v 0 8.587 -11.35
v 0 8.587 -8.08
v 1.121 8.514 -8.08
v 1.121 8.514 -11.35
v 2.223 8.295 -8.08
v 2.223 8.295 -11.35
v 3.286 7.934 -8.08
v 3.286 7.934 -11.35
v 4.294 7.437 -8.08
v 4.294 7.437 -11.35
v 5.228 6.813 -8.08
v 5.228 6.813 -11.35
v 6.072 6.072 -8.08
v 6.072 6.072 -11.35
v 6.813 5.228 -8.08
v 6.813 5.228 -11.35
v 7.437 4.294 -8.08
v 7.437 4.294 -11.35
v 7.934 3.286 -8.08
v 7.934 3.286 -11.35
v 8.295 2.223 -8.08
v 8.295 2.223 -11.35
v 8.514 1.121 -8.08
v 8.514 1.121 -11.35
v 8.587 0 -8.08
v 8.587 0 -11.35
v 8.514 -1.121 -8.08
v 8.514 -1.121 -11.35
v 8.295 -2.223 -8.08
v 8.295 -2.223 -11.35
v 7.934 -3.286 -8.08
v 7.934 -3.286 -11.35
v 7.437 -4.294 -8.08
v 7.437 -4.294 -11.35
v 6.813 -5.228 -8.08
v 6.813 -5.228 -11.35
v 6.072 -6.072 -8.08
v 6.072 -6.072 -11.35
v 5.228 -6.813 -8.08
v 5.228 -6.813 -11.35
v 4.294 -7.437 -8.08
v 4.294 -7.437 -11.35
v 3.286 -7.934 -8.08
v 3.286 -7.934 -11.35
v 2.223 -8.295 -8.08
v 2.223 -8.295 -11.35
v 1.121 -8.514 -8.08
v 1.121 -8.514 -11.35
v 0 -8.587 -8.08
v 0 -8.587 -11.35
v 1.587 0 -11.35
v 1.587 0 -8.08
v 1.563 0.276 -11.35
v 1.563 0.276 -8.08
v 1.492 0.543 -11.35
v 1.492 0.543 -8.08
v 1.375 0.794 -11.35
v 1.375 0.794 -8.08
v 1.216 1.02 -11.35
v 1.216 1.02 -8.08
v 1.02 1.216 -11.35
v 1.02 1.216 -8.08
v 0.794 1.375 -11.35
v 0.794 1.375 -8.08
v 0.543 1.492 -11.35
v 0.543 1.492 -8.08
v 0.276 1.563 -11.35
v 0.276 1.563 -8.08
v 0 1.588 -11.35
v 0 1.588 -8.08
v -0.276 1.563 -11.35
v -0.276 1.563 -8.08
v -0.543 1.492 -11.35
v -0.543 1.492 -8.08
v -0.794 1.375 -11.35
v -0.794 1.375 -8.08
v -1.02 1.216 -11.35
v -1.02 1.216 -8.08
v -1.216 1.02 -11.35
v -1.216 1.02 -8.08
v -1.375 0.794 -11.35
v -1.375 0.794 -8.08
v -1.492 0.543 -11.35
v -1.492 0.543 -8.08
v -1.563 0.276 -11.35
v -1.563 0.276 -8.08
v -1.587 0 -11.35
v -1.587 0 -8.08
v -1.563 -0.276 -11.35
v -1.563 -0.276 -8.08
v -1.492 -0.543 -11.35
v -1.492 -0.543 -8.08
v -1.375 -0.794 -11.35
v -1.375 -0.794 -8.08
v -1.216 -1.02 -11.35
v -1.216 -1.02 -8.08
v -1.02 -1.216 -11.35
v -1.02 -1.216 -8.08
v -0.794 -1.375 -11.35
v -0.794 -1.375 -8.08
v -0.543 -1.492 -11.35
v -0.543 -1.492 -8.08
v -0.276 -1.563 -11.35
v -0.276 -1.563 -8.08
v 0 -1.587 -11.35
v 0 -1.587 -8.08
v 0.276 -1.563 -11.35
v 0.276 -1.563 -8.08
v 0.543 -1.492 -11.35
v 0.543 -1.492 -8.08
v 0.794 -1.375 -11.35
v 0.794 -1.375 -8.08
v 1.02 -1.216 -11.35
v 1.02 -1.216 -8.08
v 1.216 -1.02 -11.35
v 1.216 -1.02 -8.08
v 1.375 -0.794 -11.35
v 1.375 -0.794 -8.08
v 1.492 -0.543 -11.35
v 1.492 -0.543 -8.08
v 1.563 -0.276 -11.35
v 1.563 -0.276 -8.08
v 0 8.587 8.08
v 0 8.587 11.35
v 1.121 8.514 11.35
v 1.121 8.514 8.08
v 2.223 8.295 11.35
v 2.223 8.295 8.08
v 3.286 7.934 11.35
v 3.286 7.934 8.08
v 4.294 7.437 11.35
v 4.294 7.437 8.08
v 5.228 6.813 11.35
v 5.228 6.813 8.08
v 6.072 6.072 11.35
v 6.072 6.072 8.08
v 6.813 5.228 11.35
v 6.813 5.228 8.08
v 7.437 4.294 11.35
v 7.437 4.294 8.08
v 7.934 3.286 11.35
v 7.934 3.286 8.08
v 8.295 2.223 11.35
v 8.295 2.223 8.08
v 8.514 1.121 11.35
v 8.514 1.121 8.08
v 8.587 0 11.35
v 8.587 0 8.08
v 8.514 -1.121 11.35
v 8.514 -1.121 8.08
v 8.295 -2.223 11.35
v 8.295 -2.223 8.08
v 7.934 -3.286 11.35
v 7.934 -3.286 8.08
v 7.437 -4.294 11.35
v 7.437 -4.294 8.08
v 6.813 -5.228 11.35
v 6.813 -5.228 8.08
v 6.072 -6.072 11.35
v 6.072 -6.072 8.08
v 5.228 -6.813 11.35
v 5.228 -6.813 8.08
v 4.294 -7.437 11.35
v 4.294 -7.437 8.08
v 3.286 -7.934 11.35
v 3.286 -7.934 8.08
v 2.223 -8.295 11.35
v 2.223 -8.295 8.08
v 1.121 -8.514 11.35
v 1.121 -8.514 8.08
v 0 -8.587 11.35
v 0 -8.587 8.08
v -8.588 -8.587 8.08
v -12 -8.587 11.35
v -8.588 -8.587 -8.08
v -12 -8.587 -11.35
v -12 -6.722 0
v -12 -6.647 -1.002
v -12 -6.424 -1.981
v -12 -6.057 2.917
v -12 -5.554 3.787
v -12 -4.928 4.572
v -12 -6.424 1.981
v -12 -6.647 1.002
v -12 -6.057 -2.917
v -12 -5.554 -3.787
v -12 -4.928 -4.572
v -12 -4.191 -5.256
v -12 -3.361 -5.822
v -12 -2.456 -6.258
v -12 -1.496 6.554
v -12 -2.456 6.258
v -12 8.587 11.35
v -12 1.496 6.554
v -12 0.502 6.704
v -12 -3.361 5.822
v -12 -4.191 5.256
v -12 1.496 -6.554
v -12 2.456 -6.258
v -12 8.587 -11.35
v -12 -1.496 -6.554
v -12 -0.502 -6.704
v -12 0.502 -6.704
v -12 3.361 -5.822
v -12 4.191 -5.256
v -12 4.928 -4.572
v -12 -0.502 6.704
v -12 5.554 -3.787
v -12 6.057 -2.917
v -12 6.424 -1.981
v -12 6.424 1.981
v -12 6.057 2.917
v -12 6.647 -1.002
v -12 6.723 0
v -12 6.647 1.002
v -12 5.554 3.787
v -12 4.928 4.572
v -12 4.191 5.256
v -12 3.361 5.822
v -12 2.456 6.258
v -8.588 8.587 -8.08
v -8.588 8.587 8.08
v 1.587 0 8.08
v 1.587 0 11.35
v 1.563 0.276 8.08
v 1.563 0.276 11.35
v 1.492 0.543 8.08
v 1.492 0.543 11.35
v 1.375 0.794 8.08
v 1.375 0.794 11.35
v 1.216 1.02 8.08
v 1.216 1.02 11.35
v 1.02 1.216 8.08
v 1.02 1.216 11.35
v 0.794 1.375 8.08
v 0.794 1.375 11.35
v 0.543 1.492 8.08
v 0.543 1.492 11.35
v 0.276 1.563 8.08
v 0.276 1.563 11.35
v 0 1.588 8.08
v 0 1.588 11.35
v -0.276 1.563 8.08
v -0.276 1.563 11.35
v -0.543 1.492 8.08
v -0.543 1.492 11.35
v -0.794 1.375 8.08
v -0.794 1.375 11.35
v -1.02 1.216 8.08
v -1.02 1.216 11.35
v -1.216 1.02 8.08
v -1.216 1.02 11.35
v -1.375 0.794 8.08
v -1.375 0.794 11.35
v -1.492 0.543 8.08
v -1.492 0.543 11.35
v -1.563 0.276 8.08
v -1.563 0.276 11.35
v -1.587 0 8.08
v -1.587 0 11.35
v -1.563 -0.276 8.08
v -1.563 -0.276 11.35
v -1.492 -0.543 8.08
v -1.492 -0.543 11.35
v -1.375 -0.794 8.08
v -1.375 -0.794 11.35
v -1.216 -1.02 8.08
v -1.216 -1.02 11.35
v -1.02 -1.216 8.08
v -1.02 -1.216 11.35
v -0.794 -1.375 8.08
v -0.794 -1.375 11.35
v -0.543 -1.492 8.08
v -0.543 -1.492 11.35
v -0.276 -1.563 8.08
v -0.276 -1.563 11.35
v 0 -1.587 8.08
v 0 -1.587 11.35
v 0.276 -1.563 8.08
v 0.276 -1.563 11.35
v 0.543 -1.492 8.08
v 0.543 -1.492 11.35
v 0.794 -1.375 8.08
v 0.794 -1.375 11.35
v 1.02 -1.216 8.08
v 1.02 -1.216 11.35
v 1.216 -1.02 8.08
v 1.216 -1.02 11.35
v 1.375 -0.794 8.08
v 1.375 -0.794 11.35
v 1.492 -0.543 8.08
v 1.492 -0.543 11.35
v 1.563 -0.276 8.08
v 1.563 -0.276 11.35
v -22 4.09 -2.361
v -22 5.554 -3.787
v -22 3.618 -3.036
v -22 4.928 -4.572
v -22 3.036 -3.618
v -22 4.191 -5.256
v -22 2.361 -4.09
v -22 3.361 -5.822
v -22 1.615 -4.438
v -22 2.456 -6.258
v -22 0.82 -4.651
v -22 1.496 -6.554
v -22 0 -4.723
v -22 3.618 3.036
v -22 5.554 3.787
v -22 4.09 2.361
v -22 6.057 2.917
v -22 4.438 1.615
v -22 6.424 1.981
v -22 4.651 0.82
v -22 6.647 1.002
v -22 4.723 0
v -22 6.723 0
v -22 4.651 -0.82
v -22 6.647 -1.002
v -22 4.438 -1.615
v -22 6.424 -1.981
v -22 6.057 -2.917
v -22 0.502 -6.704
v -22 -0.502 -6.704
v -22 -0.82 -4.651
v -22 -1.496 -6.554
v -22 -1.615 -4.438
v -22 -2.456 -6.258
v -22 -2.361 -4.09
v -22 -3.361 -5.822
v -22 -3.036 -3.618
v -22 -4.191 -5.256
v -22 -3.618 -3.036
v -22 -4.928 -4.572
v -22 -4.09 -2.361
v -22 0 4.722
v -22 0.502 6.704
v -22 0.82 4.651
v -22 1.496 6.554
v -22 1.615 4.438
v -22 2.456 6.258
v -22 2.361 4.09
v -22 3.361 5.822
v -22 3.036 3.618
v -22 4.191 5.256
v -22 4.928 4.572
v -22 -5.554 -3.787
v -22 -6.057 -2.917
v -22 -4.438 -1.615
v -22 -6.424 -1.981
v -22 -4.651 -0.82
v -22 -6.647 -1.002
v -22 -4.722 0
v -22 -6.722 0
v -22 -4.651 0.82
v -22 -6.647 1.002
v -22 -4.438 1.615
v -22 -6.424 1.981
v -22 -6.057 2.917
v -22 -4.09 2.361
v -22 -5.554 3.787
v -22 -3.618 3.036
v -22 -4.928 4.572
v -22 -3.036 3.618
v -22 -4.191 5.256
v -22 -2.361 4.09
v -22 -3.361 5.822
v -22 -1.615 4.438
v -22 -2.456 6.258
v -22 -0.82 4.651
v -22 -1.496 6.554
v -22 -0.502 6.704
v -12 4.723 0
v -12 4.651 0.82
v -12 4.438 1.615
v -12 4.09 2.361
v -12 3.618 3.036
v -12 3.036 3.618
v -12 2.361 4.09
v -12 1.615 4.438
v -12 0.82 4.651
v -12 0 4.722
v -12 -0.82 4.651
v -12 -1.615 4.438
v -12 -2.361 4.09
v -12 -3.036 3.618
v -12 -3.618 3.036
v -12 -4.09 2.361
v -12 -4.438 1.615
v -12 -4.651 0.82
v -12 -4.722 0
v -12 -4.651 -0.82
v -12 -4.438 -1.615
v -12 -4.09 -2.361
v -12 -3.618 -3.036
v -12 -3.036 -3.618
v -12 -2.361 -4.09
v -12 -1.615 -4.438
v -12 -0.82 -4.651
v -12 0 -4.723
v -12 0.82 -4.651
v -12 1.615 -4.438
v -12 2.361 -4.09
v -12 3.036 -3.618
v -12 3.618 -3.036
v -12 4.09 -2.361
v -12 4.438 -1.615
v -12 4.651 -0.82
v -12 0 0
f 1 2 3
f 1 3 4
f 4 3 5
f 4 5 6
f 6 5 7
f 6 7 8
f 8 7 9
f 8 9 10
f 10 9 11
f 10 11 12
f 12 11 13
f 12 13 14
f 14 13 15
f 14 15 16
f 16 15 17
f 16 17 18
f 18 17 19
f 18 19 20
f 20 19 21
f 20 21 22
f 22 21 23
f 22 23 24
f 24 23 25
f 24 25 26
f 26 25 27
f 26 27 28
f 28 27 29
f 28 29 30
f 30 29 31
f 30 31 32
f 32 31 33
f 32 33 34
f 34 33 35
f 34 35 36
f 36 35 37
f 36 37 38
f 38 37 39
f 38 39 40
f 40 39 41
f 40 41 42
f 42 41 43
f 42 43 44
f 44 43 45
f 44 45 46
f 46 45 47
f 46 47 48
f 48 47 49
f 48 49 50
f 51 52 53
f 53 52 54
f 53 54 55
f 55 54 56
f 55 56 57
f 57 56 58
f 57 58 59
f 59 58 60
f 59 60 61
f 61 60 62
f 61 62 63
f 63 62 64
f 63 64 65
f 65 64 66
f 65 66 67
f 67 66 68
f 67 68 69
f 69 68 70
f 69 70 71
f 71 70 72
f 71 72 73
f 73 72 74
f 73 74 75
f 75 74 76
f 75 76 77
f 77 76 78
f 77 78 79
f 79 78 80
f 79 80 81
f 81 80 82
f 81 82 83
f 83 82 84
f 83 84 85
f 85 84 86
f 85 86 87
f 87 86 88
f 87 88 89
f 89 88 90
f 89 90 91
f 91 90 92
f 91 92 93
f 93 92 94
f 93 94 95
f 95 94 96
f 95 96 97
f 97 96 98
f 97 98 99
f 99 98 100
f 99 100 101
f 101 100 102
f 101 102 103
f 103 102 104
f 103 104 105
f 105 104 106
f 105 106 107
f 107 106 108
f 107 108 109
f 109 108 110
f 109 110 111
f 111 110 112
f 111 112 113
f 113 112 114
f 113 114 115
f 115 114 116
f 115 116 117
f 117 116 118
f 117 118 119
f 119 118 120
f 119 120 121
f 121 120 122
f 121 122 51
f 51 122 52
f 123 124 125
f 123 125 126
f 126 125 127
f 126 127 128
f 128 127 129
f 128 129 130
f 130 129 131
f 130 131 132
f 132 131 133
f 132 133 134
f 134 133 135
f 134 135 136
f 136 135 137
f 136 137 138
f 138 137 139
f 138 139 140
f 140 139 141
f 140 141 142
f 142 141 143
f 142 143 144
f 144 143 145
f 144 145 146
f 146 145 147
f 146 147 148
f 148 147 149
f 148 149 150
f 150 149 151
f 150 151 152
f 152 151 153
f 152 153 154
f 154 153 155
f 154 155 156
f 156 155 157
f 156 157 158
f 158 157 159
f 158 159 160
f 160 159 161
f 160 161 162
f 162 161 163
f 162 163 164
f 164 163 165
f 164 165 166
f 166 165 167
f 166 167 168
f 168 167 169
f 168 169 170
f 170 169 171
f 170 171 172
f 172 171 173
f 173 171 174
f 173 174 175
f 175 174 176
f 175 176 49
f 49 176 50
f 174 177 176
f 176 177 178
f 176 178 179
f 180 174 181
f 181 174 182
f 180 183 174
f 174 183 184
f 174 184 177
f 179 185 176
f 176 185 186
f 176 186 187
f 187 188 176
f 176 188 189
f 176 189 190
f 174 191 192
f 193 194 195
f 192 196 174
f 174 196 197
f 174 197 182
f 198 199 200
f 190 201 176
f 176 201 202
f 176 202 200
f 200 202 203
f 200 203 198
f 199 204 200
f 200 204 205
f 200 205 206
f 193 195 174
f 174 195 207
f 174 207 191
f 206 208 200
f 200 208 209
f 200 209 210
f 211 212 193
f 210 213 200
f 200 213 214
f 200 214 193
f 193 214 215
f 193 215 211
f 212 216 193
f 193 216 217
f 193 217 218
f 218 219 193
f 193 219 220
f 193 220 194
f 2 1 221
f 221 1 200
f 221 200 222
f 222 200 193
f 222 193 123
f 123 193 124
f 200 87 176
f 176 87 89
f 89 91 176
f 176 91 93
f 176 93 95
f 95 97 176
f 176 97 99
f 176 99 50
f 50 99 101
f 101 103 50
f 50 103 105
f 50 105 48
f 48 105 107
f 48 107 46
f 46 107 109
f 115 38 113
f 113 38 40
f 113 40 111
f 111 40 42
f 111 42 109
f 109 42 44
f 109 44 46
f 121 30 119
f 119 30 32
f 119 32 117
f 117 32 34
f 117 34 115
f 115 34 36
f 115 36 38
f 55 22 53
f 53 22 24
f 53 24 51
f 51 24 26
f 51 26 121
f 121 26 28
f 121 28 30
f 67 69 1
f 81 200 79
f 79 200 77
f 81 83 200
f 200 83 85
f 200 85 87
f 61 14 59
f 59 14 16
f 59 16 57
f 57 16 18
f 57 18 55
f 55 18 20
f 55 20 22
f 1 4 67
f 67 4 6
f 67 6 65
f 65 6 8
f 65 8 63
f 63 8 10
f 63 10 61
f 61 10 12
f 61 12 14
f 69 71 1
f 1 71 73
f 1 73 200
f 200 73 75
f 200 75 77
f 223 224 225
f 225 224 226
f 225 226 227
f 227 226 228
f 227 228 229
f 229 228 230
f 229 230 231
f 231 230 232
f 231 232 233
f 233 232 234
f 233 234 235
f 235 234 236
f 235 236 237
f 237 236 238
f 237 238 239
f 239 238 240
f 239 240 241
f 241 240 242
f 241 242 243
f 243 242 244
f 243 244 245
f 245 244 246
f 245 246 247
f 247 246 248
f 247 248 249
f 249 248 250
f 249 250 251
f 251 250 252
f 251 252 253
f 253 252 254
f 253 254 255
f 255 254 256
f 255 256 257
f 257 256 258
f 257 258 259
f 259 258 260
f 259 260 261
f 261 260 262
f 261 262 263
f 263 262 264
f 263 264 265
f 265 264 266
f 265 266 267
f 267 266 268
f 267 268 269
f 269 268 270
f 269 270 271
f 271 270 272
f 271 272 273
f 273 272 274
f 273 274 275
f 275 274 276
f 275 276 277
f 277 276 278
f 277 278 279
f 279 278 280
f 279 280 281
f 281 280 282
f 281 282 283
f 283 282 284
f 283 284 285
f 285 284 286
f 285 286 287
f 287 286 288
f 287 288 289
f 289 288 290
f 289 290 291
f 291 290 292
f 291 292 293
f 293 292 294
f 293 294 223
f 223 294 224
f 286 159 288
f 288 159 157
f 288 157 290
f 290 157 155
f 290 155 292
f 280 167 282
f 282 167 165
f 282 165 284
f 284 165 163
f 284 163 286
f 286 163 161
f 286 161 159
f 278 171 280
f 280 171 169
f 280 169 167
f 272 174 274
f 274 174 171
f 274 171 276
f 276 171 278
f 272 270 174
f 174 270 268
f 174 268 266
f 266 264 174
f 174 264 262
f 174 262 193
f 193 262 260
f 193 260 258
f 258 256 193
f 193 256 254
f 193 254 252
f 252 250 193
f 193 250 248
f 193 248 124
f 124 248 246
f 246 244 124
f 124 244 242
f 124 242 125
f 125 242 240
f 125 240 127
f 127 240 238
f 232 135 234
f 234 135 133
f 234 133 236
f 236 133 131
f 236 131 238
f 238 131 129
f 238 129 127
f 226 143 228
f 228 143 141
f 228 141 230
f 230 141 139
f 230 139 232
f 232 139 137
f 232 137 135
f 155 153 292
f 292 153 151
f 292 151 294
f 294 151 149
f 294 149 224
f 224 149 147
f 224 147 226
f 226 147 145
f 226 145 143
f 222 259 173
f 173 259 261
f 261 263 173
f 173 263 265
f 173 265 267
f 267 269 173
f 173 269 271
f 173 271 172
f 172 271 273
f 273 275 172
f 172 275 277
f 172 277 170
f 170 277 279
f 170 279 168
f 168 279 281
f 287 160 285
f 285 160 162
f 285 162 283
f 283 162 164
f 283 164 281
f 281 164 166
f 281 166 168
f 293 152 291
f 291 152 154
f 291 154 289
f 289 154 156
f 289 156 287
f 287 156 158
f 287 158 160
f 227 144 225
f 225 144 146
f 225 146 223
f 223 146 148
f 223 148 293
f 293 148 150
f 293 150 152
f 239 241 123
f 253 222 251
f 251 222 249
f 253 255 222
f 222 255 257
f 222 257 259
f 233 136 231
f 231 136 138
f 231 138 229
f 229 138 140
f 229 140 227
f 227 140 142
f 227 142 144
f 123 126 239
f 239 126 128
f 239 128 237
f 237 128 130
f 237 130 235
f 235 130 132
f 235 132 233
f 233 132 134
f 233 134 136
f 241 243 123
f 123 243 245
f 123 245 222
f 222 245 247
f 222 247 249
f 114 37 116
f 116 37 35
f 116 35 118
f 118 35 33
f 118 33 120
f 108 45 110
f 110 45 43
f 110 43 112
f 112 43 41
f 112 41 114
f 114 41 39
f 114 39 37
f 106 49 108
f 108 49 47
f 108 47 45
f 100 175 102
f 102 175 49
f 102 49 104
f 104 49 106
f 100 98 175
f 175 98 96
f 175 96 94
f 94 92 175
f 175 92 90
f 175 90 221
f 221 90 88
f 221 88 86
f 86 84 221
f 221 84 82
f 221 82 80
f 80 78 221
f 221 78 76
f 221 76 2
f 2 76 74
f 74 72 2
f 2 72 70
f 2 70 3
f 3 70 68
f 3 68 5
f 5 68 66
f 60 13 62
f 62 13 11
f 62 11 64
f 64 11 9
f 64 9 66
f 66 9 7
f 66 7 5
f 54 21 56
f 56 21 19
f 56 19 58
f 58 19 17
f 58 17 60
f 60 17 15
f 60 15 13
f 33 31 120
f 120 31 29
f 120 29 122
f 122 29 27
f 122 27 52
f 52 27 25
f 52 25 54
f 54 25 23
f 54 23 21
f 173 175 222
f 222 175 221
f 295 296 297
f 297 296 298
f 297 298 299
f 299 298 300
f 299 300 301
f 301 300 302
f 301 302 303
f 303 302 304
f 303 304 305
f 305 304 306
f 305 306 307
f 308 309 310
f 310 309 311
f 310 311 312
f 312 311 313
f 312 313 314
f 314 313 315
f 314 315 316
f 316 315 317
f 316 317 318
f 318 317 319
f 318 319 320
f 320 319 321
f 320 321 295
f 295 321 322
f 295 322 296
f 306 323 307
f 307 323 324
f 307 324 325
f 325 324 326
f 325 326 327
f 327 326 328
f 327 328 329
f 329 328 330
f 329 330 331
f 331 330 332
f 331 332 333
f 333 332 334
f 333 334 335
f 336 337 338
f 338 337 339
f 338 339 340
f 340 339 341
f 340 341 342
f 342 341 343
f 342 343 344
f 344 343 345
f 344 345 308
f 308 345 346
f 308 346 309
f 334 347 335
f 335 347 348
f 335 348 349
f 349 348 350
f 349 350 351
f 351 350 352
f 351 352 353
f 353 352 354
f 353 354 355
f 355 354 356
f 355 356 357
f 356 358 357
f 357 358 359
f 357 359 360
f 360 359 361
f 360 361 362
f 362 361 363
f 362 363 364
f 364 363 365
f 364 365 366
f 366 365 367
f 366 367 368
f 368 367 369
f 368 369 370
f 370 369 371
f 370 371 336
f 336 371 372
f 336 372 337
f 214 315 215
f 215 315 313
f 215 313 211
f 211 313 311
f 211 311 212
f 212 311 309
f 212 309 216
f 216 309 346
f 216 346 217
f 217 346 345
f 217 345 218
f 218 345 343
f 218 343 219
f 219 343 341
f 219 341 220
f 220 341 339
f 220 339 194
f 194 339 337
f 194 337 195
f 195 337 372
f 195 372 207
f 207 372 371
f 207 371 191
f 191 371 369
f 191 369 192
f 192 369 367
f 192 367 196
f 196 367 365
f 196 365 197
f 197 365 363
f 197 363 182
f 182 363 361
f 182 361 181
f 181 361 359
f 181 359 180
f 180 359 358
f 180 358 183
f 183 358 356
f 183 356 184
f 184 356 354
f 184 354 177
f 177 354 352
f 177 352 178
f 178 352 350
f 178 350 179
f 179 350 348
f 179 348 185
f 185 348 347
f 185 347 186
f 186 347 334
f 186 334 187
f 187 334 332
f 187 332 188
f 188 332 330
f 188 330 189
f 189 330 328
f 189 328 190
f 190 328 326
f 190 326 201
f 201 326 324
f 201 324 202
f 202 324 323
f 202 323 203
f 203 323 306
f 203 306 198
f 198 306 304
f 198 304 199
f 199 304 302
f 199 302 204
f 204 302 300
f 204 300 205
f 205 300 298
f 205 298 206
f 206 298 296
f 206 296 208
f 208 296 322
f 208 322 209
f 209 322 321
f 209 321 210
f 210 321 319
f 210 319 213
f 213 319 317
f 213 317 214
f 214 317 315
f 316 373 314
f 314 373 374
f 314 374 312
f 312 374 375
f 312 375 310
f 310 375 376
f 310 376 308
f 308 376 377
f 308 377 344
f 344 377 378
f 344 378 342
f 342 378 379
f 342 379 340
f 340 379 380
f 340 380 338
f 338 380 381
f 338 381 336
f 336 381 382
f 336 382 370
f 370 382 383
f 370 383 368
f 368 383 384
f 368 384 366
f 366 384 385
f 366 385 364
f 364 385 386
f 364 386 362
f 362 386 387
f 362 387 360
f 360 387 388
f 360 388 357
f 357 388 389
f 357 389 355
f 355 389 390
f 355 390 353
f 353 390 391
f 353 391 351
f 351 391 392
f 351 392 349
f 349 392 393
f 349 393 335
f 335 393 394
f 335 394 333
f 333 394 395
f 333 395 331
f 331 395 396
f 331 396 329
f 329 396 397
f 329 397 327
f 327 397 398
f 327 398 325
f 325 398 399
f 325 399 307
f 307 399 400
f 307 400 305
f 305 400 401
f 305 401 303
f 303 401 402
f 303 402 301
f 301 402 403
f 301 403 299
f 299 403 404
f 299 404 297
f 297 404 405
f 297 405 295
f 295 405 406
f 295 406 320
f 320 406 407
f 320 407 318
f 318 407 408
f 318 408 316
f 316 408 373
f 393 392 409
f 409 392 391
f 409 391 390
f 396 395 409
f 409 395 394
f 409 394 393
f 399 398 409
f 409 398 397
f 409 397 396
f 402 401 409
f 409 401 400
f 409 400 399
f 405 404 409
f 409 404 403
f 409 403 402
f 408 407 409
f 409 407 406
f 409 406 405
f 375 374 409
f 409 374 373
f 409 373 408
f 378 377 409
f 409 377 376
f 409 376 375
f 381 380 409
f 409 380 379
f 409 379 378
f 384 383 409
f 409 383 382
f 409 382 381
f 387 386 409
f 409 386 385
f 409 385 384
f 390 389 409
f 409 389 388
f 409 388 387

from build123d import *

# Parameters (mm, degrees)
BOSS_EXTRUDE2_DEPTH      = 11.35
BOSS_EXTRUDE2_DEPTH_BACK = 11.35
SKETCH1_R                = 1.5875
CUT_EXTRUDE1_DEPTH       = 8.08
CUT_EXTRUDE1_DEPTH_BACK  = 8.08
SKETCH3_W                = 17.175
SKETCH3_H                = 17.175
SKETCH4_R                = 6.7225
SKETCH4_R_2              = 4.7225
BOSS_EXTRUDE4_DEPTH      = 10


with BuildPart() as part:
    # Sketch1 → Boss-Extrude2 (new, two sides: drawn at the far end of the back side and taken through both)
    with BuildSketch(Plane.XY.offset(-BOSS_EXTRUDE2_DEPTH_BACK)):
        with BuildLine():
            Line((0, 8.5875), (-12, 8.5875))
            Line((-12, 8.5875), (-12, -8.5875))
            Line((-12, -8.5875), (0, -8.5875))
            ThreePointArc((0, -8.5875), (8.5875, 0), (0, 8.5875))
        make_face()
        Circle(SKETCH1_R, mode=Mode.SUBTRACT)
    extrude(amount=BOSS_EXTRUDE2_DEPTH + BOSS_EXTRUDE2_DEPTH_BACK)

    # Sketch3 → Cut-Extrude1 (cut, two sides: drawn at the far end of the back side and taken through both)
    with BuildSketch(Plane.XY.offset(-CUT_EXTRUDE1_DEPTH_BACK)):
        Rectangle(SKETCH3_W, SKETCH3_H)
    extrude(amount=CUT_EXTRUDE1_DEPTH + CUT_EXTRUDE1_DEPTH_BACK, mode=Mode.SUBTRACT)

    # Sketch4 → Boss-Extrude4 (add)
    with BuildSketch(Plane.ZY.offset(12)):
        Circle(SKETCH4_R)
        Circle(SKETCH4_R_2, mode=Mode.SUBTRACT)
    extrude(amount=BOSS_EXTRUDE4_DEPTH)


solid = part.part
